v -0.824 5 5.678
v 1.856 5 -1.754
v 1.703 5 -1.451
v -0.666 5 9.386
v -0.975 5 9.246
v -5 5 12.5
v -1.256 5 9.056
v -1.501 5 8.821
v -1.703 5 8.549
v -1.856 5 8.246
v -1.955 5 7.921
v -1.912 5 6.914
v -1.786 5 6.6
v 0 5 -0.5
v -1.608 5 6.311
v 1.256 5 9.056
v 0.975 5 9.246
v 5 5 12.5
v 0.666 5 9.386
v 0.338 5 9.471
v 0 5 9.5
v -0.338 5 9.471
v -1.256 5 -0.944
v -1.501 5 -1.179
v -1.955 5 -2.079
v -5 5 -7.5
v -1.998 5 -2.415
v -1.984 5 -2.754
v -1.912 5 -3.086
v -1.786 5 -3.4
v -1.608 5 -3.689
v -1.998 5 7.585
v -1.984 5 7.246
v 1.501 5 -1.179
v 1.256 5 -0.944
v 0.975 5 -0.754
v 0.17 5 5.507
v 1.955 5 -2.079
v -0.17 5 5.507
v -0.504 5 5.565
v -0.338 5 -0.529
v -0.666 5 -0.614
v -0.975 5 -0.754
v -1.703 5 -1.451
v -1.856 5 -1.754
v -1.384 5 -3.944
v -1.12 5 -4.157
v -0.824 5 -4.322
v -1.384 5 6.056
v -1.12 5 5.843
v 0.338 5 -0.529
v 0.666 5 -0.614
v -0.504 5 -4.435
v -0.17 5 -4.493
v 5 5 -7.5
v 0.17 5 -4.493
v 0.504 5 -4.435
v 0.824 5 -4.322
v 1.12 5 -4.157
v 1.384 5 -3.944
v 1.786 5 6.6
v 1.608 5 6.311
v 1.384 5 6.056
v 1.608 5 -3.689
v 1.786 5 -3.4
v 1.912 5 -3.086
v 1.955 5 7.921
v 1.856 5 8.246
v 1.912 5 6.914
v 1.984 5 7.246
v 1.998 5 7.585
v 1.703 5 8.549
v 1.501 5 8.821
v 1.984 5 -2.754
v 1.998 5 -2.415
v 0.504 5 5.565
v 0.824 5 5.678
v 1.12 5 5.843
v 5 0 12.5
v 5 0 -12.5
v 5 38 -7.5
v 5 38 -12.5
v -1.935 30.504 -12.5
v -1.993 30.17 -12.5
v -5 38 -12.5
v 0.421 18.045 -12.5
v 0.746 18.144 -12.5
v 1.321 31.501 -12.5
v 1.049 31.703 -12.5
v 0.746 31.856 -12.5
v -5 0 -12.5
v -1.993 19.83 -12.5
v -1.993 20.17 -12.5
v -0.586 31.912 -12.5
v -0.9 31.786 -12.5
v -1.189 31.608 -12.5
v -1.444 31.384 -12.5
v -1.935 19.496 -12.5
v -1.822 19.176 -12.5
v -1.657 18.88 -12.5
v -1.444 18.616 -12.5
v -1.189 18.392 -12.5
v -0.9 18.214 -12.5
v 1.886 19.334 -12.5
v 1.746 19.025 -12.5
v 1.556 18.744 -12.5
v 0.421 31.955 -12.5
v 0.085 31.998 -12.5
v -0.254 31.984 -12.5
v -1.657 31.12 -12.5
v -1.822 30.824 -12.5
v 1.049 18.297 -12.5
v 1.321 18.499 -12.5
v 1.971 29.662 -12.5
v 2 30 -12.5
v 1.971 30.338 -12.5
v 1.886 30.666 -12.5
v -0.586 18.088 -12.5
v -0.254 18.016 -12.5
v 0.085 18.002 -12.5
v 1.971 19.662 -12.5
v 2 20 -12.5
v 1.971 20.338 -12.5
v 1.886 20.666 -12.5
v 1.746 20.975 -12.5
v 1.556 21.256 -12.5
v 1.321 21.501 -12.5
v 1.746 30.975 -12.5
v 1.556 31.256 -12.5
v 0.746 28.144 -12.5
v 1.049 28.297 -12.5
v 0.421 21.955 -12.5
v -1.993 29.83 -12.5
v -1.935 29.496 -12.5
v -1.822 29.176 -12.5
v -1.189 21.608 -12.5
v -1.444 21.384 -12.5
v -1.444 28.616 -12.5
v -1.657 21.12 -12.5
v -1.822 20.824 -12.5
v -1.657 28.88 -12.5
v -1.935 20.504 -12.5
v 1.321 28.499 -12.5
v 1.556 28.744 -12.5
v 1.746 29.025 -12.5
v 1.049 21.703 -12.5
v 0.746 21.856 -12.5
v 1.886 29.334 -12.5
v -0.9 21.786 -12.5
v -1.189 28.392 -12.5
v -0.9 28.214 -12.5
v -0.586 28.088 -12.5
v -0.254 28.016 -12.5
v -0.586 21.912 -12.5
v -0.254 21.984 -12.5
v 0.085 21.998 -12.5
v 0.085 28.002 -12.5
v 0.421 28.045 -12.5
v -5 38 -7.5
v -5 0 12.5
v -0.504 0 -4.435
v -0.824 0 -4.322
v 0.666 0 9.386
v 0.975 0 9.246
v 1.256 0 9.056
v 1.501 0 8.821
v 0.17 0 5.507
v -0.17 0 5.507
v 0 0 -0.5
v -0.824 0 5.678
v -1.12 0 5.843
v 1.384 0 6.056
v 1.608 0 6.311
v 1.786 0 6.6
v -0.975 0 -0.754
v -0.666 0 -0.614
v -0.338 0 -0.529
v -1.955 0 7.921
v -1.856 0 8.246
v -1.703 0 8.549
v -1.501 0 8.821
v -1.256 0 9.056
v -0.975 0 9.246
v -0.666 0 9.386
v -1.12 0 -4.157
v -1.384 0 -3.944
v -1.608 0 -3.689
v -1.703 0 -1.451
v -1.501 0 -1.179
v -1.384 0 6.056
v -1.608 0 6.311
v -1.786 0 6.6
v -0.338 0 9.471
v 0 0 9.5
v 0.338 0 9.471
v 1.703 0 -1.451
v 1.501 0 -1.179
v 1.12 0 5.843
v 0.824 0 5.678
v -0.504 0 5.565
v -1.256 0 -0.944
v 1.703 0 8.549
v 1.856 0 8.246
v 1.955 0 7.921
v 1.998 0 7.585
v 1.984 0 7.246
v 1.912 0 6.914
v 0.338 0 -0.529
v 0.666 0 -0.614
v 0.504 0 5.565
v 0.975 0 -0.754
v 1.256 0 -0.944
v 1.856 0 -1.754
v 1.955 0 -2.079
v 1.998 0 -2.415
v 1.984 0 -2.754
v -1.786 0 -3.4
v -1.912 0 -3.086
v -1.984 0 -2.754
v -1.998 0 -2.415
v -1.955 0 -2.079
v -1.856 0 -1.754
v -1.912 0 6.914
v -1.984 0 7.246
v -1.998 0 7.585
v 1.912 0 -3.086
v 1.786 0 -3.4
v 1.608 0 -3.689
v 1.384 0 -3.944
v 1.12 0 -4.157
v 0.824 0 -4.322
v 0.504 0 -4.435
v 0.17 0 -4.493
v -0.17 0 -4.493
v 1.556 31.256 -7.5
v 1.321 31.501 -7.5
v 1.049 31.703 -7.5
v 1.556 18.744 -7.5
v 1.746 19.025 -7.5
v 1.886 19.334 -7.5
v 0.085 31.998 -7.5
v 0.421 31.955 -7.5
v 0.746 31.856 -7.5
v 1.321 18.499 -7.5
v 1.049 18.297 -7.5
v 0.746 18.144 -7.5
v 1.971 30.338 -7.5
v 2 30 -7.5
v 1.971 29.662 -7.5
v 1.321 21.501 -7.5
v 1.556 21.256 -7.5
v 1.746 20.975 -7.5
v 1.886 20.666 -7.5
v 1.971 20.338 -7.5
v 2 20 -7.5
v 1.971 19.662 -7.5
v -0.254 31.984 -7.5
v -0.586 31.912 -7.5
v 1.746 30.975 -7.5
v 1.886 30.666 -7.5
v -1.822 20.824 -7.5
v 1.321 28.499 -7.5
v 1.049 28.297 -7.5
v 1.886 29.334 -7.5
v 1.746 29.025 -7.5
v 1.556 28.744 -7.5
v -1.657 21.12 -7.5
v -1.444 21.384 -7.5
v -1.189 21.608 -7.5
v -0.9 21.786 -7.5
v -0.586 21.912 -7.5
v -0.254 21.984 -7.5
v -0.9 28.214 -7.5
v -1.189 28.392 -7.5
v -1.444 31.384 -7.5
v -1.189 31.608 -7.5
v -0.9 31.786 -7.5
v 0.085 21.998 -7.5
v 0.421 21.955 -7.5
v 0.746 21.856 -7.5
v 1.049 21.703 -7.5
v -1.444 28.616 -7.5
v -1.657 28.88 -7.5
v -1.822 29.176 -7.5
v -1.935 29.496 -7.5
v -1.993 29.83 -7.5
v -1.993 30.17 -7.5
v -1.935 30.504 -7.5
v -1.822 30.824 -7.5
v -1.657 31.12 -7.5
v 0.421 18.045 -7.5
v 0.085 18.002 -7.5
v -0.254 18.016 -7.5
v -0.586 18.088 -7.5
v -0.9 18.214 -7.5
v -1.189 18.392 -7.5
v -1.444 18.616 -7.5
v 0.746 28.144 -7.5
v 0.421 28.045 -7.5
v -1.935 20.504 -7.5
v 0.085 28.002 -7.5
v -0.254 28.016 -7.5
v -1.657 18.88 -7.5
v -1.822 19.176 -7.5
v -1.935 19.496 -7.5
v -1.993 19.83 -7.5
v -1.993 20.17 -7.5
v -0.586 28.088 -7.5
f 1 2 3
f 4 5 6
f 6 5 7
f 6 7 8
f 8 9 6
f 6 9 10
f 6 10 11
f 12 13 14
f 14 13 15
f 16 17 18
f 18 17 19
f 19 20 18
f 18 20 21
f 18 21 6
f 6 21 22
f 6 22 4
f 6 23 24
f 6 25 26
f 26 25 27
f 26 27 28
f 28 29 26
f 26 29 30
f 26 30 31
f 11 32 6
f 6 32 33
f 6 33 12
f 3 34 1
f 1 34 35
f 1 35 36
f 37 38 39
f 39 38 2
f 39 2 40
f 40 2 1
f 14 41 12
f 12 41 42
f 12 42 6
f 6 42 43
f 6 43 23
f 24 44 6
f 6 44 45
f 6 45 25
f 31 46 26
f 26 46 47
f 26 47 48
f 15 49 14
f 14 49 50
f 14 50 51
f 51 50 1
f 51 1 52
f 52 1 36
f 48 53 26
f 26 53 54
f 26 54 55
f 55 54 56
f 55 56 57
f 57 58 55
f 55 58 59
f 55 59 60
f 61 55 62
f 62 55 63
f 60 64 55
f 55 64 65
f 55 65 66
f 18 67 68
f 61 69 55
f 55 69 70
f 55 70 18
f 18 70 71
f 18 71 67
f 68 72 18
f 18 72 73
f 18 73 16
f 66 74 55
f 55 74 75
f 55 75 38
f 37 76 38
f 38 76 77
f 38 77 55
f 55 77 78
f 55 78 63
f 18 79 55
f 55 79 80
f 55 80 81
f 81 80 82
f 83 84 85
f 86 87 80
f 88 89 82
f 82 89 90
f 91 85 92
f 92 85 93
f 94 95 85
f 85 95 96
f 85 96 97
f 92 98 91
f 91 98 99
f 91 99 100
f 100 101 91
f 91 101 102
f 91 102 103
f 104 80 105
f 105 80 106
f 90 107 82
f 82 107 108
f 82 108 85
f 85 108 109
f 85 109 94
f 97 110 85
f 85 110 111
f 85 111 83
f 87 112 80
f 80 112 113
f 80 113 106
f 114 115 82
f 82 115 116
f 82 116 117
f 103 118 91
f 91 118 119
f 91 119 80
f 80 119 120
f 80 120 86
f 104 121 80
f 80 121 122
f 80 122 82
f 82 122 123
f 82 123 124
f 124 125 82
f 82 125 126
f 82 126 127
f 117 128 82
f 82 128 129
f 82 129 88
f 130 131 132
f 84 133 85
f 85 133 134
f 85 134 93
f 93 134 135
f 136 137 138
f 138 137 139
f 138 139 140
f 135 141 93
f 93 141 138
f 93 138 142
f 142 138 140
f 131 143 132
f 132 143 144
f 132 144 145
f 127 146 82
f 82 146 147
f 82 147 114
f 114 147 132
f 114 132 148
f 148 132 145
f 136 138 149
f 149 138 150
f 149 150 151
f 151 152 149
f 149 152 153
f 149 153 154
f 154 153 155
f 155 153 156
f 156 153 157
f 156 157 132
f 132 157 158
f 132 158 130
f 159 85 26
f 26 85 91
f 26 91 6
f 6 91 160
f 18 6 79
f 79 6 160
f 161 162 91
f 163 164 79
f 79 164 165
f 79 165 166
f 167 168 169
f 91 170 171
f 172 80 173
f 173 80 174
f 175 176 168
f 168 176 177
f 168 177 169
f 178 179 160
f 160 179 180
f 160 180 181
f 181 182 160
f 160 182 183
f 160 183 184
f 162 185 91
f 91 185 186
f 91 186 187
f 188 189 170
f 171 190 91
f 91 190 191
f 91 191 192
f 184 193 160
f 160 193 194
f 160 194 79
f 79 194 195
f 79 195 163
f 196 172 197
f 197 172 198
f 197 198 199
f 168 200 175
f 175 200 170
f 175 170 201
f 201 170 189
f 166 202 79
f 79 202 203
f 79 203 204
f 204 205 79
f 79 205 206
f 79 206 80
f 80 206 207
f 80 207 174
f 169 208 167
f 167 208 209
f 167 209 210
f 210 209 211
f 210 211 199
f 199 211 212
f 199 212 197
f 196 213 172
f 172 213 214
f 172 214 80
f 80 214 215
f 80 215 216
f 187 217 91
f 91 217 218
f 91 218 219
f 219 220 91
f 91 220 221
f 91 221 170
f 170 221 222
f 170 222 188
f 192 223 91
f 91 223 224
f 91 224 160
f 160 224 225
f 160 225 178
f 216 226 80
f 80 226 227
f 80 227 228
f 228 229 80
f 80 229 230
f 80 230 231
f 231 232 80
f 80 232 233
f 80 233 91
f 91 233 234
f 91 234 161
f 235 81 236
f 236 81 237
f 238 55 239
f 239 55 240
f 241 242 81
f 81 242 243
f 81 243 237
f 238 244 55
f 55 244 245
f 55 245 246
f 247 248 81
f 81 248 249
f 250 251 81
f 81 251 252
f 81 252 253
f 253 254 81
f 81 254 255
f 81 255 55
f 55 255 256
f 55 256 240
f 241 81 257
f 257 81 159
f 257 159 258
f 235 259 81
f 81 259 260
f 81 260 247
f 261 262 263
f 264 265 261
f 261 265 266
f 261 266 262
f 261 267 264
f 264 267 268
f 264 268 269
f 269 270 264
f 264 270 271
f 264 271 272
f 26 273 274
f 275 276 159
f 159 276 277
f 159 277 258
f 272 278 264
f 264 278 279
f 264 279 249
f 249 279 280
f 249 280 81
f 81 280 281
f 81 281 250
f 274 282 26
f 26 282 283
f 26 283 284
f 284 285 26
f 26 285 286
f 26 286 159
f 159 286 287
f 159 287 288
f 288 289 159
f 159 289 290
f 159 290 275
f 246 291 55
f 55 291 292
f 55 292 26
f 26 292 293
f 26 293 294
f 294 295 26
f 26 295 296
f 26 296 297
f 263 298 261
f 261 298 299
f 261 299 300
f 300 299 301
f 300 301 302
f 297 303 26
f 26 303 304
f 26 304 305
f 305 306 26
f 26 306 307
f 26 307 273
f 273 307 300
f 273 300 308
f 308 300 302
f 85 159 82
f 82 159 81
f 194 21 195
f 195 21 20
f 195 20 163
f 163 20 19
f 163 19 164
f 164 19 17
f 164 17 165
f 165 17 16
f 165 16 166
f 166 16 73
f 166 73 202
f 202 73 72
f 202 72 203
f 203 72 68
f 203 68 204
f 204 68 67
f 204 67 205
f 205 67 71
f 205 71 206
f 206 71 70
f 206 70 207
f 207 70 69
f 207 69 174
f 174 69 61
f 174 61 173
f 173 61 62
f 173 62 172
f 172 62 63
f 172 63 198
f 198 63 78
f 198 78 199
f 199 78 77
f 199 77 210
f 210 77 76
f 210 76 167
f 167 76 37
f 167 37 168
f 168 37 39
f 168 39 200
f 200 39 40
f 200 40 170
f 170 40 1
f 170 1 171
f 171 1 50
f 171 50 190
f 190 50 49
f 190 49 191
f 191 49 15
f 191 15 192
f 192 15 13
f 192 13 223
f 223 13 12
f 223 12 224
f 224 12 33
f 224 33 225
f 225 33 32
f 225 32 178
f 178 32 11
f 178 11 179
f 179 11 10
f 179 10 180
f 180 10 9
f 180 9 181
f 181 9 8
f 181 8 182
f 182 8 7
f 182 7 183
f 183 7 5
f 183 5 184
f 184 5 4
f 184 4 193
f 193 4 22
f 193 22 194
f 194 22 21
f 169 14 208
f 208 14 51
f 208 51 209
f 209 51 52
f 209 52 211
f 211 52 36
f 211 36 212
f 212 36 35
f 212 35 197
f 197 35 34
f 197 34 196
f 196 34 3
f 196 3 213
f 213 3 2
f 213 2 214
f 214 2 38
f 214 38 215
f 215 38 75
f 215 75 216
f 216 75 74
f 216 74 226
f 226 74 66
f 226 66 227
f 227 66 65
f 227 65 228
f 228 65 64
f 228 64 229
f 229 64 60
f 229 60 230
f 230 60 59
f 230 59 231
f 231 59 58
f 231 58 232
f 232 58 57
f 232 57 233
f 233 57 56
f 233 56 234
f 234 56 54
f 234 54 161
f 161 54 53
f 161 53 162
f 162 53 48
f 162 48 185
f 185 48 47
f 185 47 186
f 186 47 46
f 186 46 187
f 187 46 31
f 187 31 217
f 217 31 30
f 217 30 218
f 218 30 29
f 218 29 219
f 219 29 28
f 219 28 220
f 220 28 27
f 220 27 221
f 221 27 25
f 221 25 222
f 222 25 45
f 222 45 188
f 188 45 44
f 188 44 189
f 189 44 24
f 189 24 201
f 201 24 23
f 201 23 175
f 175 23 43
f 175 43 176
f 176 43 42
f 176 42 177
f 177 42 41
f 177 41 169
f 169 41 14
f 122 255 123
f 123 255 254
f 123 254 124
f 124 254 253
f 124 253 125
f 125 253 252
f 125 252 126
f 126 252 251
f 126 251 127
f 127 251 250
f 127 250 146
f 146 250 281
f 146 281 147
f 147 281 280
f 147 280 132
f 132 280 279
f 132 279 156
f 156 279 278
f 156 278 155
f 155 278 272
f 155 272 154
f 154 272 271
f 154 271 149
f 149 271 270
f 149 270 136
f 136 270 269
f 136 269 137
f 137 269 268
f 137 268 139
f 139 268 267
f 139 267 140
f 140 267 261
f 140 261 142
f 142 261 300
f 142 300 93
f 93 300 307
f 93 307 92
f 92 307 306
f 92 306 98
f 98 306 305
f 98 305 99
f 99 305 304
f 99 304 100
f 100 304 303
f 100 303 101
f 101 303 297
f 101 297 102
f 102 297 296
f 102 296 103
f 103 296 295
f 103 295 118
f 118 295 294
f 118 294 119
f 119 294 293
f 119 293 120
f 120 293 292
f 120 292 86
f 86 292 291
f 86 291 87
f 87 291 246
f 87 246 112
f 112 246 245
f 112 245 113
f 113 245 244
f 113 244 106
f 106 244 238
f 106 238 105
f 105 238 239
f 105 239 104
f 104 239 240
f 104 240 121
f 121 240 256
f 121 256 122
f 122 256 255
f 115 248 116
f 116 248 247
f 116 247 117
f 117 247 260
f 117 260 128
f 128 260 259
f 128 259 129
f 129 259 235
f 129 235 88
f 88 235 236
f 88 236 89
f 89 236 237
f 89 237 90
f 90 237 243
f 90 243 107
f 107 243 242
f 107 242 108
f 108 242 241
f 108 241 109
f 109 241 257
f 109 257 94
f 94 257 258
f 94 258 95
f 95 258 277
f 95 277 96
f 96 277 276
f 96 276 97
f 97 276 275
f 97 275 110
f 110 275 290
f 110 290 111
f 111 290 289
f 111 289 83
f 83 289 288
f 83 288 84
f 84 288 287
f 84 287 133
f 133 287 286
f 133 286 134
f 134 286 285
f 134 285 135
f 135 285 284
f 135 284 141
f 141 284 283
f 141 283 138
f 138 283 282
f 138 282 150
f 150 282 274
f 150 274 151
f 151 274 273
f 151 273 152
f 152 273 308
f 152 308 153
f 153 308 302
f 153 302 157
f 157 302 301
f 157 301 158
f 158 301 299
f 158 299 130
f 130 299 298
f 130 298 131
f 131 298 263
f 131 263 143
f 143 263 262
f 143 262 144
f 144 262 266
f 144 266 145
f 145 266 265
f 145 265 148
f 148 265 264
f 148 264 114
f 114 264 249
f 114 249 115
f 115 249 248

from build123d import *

# Parameters (mm, degrees)
SKETCH2_W           = 10
SKETCH2_H           = 25
BOSS_EXTRUDE1_DEPTH = 5
SKETCH4_W           = 10
SKETCH4_H           = 5
BOSS_EXTRUDE2_DEPTH = 33
SKETCH6_R           = 2
CUT_EXTRUDE1_DEPTH  = 36.640566774
SKETCH7_R           = 2
CUT_EXTRUDE2_DEPTH  = 44.231932642


with BuildPart() as part:
    # Sketch2 → Boss-Extrude1 (new body)
    with BuildSketch(Plane(origin=(0, 0, 0), x_dir=(1, 0, 0), z_dir=(0, 1, 0))):
        Rectangle(SKETCH2_W, SKETCH2_H)
    extrude(amount=BOSS_EXTRUDE1_DEPTH)

    # Sketch4 → Boss-Extrude2 (add)
    with BuildSketch(Plane(origin=(0, 5, 0), x_dir=(1, 0, 0), z_dir=(0, 1, 0))):
        with Locations((0, 10)):
            Rectangle(SKETCH4_W, SKETCH4_H)
    extrude(amount=BOSS_EXTRUDE2_DEPTH)

    # Sketch6 → Cut-Extrude1 (cut, through all)
    with BuildSketch(Plane(origin=(0, 5, 0), x_dir=(1, 0, 0), z_dir=(0, 1, 0))):
        with Locations(Location((0, 2.5, 0), (0, 0, 270))):
            Circle(SKETCH6_R)
        with Locations(Location((0, -7.5, 0), (0, 0, 270))):
            Circle(SKETCH6_R)
    extrude(amount=-CUT_EXTRUDE1_DEPTH, mode=Mode.SUBTRACT)

    # Sketch7 → Cut-Extrude2 (cut, through all)
    with BuildSketch(Plane.XY.offset(-7.5)):
        with Locations((0, 30)):
            Circle(SKETCH7_R)
        with Locations((0, 20)):
            Circle(SKETCH7_R)
    extrude(amount=-CUT_EXTRUDE2_DEPTH, mode=Mode.SUBTRACT)


solid = part.part
